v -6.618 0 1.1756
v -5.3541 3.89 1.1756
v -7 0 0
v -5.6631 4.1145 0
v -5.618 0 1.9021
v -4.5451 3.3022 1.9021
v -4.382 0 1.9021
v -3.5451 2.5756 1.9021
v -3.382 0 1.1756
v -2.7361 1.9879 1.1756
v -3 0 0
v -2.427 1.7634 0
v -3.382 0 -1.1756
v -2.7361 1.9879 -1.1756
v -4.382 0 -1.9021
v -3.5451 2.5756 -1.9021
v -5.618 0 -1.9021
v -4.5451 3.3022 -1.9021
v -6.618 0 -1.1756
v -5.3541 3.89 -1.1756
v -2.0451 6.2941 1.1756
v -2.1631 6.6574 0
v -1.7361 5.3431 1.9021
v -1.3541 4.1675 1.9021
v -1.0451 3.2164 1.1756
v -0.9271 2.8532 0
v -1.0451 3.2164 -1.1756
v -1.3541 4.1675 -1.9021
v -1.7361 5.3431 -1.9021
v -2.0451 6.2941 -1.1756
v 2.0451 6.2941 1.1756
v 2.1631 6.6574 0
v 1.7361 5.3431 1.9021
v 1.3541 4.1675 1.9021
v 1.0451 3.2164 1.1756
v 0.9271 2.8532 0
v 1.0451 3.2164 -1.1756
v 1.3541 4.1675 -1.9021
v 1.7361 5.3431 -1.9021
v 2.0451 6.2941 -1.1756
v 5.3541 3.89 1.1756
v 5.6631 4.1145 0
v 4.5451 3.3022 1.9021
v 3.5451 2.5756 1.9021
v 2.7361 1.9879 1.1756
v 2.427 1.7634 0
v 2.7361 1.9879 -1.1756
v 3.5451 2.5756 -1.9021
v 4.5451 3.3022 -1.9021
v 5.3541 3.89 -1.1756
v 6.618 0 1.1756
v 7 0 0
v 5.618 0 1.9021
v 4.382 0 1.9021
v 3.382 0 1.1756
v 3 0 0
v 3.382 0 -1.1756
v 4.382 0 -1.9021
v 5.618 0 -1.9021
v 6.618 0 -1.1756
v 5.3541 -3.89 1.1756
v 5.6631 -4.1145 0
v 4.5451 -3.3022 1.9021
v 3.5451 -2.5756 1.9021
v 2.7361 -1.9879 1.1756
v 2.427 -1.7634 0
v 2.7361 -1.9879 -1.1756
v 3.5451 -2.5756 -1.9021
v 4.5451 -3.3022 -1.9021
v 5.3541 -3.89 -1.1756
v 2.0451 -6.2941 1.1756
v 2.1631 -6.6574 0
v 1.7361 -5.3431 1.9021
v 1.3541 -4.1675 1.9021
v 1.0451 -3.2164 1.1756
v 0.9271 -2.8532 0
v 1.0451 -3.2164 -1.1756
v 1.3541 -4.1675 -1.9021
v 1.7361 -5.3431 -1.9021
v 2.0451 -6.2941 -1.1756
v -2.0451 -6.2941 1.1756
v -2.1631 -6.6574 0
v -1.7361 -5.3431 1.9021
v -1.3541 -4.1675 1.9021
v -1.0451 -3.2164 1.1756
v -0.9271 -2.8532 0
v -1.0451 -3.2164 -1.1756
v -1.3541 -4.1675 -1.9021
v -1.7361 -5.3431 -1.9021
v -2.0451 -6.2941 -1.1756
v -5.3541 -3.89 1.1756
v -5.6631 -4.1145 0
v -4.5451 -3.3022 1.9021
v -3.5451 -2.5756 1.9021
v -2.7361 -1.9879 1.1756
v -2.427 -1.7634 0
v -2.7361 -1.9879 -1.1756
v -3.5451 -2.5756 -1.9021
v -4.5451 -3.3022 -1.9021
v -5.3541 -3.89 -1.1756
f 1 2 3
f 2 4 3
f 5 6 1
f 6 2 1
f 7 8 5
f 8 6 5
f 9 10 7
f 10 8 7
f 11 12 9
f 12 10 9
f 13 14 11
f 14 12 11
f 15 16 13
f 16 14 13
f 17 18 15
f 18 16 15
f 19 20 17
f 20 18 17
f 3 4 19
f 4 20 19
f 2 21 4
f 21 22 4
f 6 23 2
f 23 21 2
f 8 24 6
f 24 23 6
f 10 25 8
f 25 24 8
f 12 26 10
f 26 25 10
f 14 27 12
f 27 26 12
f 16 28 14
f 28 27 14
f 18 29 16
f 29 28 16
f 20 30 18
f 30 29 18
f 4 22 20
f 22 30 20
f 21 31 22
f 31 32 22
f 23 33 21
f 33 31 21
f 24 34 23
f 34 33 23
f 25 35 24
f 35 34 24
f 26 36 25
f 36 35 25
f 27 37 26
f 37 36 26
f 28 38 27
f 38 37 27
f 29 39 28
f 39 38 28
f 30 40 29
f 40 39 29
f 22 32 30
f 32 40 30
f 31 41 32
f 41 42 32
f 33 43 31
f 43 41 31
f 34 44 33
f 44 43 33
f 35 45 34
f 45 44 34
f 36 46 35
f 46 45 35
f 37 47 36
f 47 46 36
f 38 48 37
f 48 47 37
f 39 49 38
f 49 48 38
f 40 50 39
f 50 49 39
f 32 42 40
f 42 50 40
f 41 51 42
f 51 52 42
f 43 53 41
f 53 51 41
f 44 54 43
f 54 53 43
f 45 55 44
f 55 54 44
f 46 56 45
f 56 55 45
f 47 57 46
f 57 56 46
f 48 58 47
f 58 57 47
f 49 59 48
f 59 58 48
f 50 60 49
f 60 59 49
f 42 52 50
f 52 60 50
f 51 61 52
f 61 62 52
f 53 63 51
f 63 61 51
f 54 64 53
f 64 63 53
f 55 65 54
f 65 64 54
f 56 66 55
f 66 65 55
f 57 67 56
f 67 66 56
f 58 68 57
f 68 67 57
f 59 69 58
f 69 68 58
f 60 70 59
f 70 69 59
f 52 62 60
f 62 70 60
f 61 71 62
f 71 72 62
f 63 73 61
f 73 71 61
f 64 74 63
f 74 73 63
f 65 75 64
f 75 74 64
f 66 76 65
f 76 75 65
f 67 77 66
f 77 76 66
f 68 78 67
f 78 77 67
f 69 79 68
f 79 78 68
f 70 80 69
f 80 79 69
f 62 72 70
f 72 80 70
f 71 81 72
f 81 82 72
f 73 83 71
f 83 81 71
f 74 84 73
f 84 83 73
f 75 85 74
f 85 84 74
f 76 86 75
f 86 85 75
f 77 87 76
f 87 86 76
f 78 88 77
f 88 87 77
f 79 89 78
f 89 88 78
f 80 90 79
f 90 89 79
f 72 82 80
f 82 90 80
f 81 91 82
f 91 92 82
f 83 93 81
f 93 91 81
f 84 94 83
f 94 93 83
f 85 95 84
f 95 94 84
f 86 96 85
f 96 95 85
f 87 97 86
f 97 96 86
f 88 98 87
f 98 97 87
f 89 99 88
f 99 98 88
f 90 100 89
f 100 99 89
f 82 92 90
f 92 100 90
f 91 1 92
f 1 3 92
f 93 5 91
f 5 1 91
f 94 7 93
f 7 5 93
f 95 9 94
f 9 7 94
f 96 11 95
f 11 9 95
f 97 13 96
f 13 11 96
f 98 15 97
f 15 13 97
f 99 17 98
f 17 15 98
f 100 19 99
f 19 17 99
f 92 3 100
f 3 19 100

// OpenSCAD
module torus(r1, r2, $fn=10) {
  rotate_extrude(angle = 360, convexity = $fn)
    translate([r1, 0, 0])
    circle(r = r2);
}

torus(r1 = 5, r2 = 2);
